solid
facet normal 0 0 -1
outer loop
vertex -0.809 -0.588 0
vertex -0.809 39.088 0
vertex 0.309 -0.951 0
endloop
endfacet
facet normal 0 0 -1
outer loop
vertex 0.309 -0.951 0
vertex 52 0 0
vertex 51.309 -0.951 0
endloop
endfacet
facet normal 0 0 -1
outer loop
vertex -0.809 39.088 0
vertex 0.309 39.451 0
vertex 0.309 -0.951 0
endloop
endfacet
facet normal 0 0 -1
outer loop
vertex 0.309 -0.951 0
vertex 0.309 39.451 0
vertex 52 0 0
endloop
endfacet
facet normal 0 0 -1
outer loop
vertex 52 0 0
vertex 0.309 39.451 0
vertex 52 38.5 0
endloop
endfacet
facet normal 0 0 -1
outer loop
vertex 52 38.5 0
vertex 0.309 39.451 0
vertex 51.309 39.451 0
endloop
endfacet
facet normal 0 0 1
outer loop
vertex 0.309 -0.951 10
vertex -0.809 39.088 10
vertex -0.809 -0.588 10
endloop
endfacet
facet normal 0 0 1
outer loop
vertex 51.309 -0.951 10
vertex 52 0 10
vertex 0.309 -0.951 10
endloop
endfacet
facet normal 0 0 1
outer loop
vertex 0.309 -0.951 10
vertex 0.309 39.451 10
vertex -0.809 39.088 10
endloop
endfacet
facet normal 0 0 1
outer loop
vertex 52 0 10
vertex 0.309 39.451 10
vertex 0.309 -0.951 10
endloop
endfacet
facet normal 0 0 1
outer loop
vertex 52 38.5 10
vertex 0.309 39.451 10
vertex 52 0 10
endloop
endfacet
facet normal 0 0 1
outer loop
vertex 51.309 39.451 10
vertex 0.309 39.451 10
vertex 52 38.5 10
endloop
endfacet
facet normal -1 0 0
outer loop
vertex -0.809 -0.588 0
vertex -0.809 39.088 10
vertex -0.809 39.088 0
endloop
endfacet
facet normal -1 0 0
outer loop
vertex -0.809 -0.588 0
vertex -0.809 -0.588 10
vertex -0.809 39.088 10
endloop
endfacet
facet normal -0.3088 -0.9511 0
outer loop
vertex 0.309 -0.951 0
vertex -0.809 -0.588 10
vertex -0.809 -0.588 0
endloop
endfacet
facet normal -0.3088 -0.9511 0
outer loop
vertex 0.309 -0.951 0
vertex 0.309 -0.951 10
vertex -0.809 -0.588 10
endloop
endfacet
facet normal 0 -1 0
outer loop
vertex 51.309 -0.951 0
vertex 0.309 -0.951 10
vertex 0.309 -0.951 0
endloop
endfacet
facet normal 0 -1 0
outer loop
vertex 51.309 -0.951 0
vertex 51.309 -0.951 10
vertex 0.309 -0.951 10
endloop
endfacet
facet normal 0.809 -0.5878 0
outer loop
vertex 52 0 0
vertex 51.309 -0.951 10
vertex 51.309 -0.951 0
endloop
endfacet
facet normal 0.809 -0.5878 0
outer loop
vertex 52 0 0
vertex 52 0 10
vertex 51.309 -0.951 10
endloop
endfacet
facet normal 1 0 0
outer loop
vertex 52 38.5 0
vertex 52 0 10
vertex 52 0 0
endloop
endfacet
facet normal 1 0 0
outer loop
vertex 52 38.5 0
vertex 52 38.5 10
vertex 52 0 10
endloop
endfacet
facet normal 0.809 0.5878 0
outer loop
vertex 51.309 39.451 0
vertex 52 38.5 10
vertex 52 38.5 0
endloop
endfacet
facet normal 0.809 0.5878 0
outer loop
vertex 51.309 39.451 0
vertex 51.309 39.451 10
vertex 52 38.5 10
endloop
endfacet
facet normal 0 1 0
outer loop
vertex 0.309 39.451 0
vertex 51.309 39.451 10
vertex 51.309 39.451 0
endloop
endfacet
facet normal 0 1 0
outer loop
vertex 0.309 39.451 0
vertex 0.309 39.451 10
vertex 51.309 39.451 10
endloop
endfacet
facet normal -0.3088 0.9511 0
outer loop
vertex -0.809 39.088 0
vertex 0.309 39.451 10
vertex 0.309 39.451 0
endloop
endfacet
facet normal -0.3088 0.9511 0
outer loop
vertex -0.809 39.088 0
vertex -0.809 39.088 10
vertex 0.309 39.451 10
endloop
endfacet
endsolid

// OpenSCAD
linear_extrude(10) minkowski() {
    circle(1);
    square([51,38.5]);
}
